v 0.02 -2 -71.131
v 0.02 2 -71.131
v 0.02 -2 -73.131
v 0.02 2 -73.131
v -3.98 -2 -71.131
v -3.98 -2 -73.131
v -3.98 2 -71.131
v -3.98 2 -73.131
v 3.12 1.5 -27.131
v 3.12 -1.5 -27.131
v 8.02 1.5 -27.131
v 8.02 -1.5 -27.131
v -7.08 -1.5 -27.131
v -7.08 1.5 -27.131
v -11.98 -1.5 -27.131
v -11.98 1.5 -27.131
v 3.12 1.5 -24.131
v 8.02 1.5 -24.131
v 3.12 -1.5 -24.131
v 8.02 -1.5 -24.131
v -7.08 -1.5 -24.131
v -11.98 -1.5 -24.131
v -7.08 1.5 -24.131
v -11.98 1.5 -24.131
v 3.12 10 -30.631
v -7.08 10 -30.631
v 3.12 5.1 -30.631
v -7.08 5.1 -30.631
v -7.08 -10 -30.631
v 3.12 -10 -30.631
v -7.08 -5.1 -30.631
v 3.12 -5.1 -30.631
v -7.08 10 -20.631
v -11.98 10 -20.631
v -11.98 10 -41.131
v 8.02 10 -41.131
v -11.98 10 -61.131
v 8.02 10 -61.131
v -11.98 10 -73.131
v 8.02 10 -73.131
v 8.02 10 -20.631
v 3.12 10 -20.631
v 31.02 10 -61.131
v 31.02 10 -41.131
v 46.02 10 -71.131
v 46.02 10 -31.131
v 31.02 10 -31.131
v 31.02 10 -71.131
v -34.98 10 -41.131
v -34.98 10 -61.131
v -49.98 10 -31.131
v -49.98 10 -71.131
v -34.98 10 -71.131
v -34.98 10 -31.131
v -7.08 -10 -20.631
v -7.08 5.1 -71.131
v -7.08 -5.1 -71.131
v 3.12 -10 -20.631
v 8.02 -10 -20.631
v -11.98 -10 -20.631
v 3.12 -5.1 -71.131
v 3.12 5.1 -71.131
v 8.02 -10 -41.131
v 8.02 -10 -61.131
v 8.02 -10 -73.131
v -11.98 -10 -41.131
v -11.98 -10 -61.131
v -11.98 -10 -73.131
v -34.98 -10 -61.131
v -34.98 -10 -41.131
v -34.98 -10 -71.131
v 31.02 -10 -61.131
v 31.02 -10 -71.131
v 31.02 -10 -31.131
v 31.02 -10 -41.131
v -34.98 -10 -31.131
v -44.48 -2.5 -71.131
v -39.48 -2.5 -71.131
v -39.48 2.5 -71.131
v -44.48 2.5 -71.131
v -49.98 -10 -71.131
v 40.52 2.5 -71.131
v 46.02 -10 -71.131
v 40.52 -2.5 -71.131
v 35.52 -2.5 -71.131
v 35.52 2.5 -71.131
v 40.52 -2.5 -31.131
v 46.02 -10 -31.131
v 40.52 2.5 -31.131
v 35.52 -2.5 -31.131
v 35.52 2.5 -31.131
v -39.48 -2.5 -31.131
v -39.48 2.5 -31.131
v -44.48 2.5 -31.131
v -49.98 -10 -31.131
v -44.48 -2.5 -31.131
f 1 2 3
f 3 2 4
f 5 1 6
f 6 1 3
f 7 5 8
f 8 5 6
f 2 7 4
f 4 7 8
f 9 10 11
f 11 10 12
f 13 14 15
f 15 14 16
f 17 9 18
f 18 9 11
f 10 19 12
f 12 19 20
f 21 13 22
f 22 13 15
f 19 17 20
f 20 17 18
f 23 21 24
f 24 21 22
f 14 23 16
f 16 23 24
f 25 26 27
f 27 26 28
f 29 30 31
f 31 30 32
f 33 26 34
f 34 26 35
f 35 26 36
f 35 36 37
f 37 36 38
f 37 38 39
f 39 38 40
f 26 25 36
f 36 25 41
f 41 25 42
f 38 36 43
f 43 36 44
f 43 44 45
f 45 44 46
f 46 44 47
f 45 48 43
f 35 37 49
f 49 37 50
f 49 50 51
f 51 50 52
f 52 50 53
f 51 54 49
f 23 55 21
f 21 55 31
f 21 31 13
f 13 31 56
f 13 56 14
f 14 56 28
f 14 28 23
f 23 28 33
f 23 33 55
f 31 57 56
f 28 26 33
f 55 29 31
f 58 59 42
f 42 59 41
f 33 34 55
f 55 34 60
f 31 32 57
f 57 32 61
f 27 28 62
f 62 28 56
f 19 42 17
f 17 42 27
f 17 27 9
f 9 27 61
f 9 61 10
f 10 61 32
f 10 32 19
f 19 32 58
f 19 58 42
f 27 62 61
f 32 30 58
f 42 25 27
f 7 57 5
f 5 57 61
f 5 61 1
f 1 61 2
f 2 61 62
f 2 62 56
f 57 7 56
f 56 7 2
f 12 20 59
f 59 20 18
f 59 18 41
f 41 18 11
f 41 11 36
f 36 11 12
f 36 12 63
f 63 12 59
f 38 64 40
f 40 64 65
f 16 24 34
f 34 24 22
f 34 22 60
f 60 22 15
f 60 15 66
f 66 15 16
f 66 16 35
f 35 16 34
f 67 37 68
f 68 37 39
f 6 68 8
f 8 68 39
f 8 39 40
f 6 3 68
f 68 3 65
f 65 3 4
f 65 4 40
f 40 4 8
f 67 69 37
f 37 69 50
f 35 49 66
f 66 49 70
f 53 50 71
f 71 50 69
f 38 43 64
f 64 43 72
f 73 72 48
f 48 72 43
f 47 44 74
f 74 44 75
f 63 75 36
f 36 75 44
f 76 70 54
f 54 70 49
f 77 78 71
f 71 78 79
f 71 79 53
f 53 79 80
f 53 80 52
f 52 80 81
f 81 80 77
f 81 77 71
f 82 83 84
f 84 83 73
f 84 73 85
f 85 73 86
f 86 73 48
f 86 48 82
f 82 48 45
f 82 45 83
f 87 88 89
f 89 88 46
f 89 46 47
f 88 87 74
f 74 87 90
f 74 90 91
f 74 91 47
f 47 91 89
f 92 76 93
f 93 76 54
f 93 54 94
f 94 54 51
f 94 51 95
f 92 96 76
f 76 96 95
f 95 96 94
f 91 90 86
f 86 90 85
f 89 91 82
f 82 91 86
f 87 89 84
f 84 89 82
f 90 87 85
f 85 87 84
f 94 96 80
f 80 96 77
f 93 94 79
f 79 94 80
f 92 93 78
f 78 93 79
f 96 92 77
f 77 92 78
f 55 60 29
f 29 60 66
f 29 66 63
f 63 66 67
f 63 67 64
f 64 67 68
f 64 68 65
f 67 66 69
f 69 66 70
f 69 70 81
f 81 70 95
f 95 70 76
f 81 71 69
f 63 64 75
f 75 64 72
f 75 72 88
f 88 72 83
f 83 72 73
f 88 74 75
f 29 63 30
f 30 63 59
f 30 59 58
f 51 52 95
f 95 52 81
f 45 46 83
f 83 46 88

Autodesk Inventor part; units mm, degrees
ref_plane "YZ Plane" through (0, 0, 0) normal (1, 0, 0) x (0, 1, 0)
ref_plane "XZ Plane" through (0, 0, 0) normal (0, 1, 0) x (-1, 0, 0)
ref_plane "XY Plane" through (0, 0, 0) normal (0, 0, 1) x (1, 0, 0)
sketch "Sketch1" plane through (0, 0, 0) normal (0, 1, 0) x (-1, 0, 0)
  line L0 (41.98, 54.6032) -> (41.98, -104.2857) construction
  line L1 (-38.02, 54.6032) -> (-38.02, -101.9048) construction
  line L2 (49.98, -31.1313) -> (-46.02, -31.1313)
  line L3 (-46.02, -31.1313) -> (-46.02, -71.1313)
  line L4 (-46.02, -71.1313) -> (49.98, -71.1313)
  line L5 (49.98, -71.1313) -> (49.98, -31.1313)
  line L6 (1.98, 80.3555) -> (1.98, -108.9591)
  point P0 (0, 0)
  dimension "d0" = 80
  dimension "d1" = 8
  dimension "d2" = 40
extrude "Extrusion1" add sketch "Sketch1" along normal mid plane 20
sketch "Sketch2" plane through (46.02, 10, -71.1313) normal (0, 0, -1) x (-1, 0, 0)
  circle A0 centre (88, -10) radius 2.5 construction
  circle A1 centre (8, -10) radius 2.5 construction
  line L0 (10.5, -7.5) -> (5.5, -7.5)
  line L1 (5.5, -7.5) -> (5.5, -12.5)
  line L2 (5.5, -12.5) -> (10.5, -12.5)
  line L3 (10.5, -12.5) -> (10.5, -7.5)
  line L4 (85.5, -7.5) -> (90.5, -7.5)
  line L5 (90.5, -7.5) -> (90.5, -12.5)
  line L6 (90.5, -12.5) -> (85.5, -12.5)
  line L7 (85.5, -12.5) -> (85.5, -7.5)
  point P0 (46.02, -10)
  point P1 (88, -10)
  point P2 (8, -10)
  dimension "d5" = 5
  dimension "d6" = 5
extrude "Extrusion2" cut sketch "Sketch2" against normal through all
sketch "Sketch3" plane through (0, 10, 0) normal (0, 1, 0) x (1, 0, 0)
  line L0 (-49.98, 31.1313) -> (46.02, 31.1313) construction
  line L1 (46.02, 31.1313) -> (46.02, 71.1313) construction
  line L2 (46.02, 71.1313) -> (-49.98, 71.1313) construction
  line L3 (-49.98, 71.1313) -> (-49.98, 31.1313) construction
  line L4 (-34.98, 79.1313) -> (31.02, 79.1313)
  line L5 (31.02, 79.1313) -> (31.02, 61.1313)
  line L6 (31.02, 61.1313) -> (-34.98, 61.1313)
  line L7 (-34.98, 61.1313) -> (-34.98, 79.1313)
  line L8 (46.02, 31.1313) -> (-49.98, 31.1313) construction
  line L9 (-1.98, 31.1313) -> (-1.98, 128.9069) construction
  line L10 (-41.98, -54.6032) -> (-41.98, 104.2857) construction
  line L11 (-34.98, 23.1313) -> (31.02, 23.1313)
  line L12 (31.02, 23.1313) -> (31.02, 41.1313)
  line L13 (31.02, 41.1313) -> (-34.98, 41.1313)
  line L14 (-34.98, 41.1313) -> (-34.98, 23.1313)
  point P0 (0, 0)
  dimension "d9" = 7
  dimension "d10" = 10
  dimension "d11" = 18
  dimension "d14" = 10
  dimension "d15" = 18
extrude "Extrusion3" cut sketch "Sketch3" against normal through all
sketch "Sketch4" plane through (31.02, 10, -61.1313) normal (0, 0, -1) x (-1, 0, 0)
  line L0 (31.02, -10) -> (61.64, -10) construction
  line L1 (43, 0) -> (23, 0)
  line L2 (23, 0) -> (23, -20)
  line L3 (23, -20) -> (43, -20)
  line L4 (43, -20) -> (43, 0)
  line L5 (66, -20) -> (0, -20) construction
  line L6 (66, 0) -> (66, -20) construction
  line L7 (0, 0) -> (66, 0) construction
  line L8 (0, 0) -> (0, -20) construction
  line L9 (66, -20) -> (0, -20) construction
  line L10 (33, -20) -> (33, -66.7058) construction
  line L11 (66, -10) -> (82.2472, -10) construction
  dimension "d16" = 20
extrude "Extrusion4" add sketch "Sketch4" along normal blind 12 and the other way blind 40.5
ref_plane "Work Plane1" through (31.02, 10, -71.1313) normal (0, 0, -1) x (-1, 0, 0)
sketch "Sketch5" plane through (31.02, 10, -71.1313) normal (0, 0, -1) x (-1, 0, 0)
  line L0 (43, 0) -> (23, 0) construction
  line L1 (23, 0) -> (23, -20) construction
  line L2 (23, -20) -> (43, -20) construction
  line L3 (43, -20) -> (43, 0) construction
  line L4 (38.1, -4.9) -> (27.9, -4.9)
  line L5 (27.9, -4.9) -> (27.9, -15.1)
  line L6 (27.9, -15.1) -> (38.1, -15.1)
  line L7 (38.1, -15.1) -> (38.1, -4.9)
  line L8 (43, 0) -> (23, 0) construction
  line L9 (33, 0) -> (33, -20) construction
  line L10 (43, -20) -> (43, 0) construction
  line L11 (43, -10) -> (23, -10) construction
  line L12 (23, 0) -> (23, -20) construction
  point P0 (31.02, -10)
  dimension "d28" = 10.2
extrude "Extrusion5" cut sketch "Sketch5" against normal through all
ref_plane "Work Plane2" through (31.02, 10, -30.6313) normal (0, 0, -1) x (-1, 0, 0)
sketch "Sketch6" plane through (31.02, 10, -20.6313) normal (0, 0, 1) x (1, 0, 0)
  line L0 (-38.1, -25.1) -> (-27.9, -25.1)
  line L1 (-27.9, -25.1) -> (-27.9, 5.1)
  line L2 (-27.9, 5.1) -> (-38.1, 5.1)
  line L3 (-38.1, 5.1) -> (-38.1, -25.1)
  line L4 (-38.1, -4.9) -> (-27.9, -4.9) construction
  line L5 (-38.1, -15.1) -> (-38.1, -4.9) construction
  line L6 (-27.9, -15.1) -> (-38.1, -15.1) construction
  line L7 (-27.9, -4.9) -> (-27.9, -15.1) construction
  line L8 (-38.1, -15.1) -> (-38.1, -4.9) construction
  line L9 (-27.9, -4.9) -> (-27.9, -15.1) construction
  point P0 (-31.02, -10)
  dimension "d29" = 10
  dimension "d30" = 10
extrude "Extrusion6" cut sketch "Sketch6" against normal up to surface (10 mm away)
sketch "Sketch7" plane through (-11.98, -10, -41.1313) normal (-1, 0, 0) x (0, 0, 1)
  line L0 (10.5, -4) -> (10.5, 24) construction
  line L1 (0, 0) -> (0, 20) construction
  line L2 (20.5, 0) -> (0, 0) construction
  line L3 (20.5, 20) -> (20.5, 0) construction
  line L4 (0, 20) -> (20.5, 20) construction
  line L5 (20.5, 0) -> (20.5, 20) construction
  line L6 (20.5, 10) -> (1.9837, 10) construction
  line L7 (10.5, 0) -> (20.5, 0) construction
  line L8 (15.5, 0) -> (15.5, 20) construction
  line L9 (0, 20) -> (20.5, 20) construction
  circle A0 centre (15.5, 10) radius 1.5 construction
  line L10 (14, 8.5) -> (17, 8.5)
  line L11 (17, 8.5) -> (17, 11.5)
  line L12 (17, 11.5) -> (14, 11.5)
  line L13 (14, 11.5) -> (14, 8.5)
  point P0 (41.1313, 10)
  dimension "d31" = 3
extrude "Extrusion7" cut sketch "Sketch7" against normal through all
sketch "Sketch8" plane through (31.02, 10, -73.1313) normal (0, 0, -1) x (-1, 0, 0)
  line L0 (43, 0) -> (23, 0) construction
  line L1 (23, 0) -> (23, -20) construction
  line L2 (23, -20) -> (43, -20) construction
  line L3 (43, -20) -> (43, 0) construction
  line L4 (43, -10) -> (23, -10) construction
  line L5 (23, 0) -> (23, -20) construction
  line L6 (23, -20) -> (43, -20) construction
  line L7 (33, -20) -> (33, 0) construction
  circle A0 centre (33, -10) radius 2 construction
  line L8 (35, -12) -> (31, -12)
  line L9 (31, -12) -> (31, -8)
  line L10 (31, -8) -> (35, -8)
  line L11 (35, -8) -> (35, -12)
  point P0 (31.02, -10)
  dimension "d34" = 4
extrude "Extrusion8" cut sketch "Sketch8" against normal blind 20
equation "\"d6\" = d5"
properties part number "PRING_piston"
